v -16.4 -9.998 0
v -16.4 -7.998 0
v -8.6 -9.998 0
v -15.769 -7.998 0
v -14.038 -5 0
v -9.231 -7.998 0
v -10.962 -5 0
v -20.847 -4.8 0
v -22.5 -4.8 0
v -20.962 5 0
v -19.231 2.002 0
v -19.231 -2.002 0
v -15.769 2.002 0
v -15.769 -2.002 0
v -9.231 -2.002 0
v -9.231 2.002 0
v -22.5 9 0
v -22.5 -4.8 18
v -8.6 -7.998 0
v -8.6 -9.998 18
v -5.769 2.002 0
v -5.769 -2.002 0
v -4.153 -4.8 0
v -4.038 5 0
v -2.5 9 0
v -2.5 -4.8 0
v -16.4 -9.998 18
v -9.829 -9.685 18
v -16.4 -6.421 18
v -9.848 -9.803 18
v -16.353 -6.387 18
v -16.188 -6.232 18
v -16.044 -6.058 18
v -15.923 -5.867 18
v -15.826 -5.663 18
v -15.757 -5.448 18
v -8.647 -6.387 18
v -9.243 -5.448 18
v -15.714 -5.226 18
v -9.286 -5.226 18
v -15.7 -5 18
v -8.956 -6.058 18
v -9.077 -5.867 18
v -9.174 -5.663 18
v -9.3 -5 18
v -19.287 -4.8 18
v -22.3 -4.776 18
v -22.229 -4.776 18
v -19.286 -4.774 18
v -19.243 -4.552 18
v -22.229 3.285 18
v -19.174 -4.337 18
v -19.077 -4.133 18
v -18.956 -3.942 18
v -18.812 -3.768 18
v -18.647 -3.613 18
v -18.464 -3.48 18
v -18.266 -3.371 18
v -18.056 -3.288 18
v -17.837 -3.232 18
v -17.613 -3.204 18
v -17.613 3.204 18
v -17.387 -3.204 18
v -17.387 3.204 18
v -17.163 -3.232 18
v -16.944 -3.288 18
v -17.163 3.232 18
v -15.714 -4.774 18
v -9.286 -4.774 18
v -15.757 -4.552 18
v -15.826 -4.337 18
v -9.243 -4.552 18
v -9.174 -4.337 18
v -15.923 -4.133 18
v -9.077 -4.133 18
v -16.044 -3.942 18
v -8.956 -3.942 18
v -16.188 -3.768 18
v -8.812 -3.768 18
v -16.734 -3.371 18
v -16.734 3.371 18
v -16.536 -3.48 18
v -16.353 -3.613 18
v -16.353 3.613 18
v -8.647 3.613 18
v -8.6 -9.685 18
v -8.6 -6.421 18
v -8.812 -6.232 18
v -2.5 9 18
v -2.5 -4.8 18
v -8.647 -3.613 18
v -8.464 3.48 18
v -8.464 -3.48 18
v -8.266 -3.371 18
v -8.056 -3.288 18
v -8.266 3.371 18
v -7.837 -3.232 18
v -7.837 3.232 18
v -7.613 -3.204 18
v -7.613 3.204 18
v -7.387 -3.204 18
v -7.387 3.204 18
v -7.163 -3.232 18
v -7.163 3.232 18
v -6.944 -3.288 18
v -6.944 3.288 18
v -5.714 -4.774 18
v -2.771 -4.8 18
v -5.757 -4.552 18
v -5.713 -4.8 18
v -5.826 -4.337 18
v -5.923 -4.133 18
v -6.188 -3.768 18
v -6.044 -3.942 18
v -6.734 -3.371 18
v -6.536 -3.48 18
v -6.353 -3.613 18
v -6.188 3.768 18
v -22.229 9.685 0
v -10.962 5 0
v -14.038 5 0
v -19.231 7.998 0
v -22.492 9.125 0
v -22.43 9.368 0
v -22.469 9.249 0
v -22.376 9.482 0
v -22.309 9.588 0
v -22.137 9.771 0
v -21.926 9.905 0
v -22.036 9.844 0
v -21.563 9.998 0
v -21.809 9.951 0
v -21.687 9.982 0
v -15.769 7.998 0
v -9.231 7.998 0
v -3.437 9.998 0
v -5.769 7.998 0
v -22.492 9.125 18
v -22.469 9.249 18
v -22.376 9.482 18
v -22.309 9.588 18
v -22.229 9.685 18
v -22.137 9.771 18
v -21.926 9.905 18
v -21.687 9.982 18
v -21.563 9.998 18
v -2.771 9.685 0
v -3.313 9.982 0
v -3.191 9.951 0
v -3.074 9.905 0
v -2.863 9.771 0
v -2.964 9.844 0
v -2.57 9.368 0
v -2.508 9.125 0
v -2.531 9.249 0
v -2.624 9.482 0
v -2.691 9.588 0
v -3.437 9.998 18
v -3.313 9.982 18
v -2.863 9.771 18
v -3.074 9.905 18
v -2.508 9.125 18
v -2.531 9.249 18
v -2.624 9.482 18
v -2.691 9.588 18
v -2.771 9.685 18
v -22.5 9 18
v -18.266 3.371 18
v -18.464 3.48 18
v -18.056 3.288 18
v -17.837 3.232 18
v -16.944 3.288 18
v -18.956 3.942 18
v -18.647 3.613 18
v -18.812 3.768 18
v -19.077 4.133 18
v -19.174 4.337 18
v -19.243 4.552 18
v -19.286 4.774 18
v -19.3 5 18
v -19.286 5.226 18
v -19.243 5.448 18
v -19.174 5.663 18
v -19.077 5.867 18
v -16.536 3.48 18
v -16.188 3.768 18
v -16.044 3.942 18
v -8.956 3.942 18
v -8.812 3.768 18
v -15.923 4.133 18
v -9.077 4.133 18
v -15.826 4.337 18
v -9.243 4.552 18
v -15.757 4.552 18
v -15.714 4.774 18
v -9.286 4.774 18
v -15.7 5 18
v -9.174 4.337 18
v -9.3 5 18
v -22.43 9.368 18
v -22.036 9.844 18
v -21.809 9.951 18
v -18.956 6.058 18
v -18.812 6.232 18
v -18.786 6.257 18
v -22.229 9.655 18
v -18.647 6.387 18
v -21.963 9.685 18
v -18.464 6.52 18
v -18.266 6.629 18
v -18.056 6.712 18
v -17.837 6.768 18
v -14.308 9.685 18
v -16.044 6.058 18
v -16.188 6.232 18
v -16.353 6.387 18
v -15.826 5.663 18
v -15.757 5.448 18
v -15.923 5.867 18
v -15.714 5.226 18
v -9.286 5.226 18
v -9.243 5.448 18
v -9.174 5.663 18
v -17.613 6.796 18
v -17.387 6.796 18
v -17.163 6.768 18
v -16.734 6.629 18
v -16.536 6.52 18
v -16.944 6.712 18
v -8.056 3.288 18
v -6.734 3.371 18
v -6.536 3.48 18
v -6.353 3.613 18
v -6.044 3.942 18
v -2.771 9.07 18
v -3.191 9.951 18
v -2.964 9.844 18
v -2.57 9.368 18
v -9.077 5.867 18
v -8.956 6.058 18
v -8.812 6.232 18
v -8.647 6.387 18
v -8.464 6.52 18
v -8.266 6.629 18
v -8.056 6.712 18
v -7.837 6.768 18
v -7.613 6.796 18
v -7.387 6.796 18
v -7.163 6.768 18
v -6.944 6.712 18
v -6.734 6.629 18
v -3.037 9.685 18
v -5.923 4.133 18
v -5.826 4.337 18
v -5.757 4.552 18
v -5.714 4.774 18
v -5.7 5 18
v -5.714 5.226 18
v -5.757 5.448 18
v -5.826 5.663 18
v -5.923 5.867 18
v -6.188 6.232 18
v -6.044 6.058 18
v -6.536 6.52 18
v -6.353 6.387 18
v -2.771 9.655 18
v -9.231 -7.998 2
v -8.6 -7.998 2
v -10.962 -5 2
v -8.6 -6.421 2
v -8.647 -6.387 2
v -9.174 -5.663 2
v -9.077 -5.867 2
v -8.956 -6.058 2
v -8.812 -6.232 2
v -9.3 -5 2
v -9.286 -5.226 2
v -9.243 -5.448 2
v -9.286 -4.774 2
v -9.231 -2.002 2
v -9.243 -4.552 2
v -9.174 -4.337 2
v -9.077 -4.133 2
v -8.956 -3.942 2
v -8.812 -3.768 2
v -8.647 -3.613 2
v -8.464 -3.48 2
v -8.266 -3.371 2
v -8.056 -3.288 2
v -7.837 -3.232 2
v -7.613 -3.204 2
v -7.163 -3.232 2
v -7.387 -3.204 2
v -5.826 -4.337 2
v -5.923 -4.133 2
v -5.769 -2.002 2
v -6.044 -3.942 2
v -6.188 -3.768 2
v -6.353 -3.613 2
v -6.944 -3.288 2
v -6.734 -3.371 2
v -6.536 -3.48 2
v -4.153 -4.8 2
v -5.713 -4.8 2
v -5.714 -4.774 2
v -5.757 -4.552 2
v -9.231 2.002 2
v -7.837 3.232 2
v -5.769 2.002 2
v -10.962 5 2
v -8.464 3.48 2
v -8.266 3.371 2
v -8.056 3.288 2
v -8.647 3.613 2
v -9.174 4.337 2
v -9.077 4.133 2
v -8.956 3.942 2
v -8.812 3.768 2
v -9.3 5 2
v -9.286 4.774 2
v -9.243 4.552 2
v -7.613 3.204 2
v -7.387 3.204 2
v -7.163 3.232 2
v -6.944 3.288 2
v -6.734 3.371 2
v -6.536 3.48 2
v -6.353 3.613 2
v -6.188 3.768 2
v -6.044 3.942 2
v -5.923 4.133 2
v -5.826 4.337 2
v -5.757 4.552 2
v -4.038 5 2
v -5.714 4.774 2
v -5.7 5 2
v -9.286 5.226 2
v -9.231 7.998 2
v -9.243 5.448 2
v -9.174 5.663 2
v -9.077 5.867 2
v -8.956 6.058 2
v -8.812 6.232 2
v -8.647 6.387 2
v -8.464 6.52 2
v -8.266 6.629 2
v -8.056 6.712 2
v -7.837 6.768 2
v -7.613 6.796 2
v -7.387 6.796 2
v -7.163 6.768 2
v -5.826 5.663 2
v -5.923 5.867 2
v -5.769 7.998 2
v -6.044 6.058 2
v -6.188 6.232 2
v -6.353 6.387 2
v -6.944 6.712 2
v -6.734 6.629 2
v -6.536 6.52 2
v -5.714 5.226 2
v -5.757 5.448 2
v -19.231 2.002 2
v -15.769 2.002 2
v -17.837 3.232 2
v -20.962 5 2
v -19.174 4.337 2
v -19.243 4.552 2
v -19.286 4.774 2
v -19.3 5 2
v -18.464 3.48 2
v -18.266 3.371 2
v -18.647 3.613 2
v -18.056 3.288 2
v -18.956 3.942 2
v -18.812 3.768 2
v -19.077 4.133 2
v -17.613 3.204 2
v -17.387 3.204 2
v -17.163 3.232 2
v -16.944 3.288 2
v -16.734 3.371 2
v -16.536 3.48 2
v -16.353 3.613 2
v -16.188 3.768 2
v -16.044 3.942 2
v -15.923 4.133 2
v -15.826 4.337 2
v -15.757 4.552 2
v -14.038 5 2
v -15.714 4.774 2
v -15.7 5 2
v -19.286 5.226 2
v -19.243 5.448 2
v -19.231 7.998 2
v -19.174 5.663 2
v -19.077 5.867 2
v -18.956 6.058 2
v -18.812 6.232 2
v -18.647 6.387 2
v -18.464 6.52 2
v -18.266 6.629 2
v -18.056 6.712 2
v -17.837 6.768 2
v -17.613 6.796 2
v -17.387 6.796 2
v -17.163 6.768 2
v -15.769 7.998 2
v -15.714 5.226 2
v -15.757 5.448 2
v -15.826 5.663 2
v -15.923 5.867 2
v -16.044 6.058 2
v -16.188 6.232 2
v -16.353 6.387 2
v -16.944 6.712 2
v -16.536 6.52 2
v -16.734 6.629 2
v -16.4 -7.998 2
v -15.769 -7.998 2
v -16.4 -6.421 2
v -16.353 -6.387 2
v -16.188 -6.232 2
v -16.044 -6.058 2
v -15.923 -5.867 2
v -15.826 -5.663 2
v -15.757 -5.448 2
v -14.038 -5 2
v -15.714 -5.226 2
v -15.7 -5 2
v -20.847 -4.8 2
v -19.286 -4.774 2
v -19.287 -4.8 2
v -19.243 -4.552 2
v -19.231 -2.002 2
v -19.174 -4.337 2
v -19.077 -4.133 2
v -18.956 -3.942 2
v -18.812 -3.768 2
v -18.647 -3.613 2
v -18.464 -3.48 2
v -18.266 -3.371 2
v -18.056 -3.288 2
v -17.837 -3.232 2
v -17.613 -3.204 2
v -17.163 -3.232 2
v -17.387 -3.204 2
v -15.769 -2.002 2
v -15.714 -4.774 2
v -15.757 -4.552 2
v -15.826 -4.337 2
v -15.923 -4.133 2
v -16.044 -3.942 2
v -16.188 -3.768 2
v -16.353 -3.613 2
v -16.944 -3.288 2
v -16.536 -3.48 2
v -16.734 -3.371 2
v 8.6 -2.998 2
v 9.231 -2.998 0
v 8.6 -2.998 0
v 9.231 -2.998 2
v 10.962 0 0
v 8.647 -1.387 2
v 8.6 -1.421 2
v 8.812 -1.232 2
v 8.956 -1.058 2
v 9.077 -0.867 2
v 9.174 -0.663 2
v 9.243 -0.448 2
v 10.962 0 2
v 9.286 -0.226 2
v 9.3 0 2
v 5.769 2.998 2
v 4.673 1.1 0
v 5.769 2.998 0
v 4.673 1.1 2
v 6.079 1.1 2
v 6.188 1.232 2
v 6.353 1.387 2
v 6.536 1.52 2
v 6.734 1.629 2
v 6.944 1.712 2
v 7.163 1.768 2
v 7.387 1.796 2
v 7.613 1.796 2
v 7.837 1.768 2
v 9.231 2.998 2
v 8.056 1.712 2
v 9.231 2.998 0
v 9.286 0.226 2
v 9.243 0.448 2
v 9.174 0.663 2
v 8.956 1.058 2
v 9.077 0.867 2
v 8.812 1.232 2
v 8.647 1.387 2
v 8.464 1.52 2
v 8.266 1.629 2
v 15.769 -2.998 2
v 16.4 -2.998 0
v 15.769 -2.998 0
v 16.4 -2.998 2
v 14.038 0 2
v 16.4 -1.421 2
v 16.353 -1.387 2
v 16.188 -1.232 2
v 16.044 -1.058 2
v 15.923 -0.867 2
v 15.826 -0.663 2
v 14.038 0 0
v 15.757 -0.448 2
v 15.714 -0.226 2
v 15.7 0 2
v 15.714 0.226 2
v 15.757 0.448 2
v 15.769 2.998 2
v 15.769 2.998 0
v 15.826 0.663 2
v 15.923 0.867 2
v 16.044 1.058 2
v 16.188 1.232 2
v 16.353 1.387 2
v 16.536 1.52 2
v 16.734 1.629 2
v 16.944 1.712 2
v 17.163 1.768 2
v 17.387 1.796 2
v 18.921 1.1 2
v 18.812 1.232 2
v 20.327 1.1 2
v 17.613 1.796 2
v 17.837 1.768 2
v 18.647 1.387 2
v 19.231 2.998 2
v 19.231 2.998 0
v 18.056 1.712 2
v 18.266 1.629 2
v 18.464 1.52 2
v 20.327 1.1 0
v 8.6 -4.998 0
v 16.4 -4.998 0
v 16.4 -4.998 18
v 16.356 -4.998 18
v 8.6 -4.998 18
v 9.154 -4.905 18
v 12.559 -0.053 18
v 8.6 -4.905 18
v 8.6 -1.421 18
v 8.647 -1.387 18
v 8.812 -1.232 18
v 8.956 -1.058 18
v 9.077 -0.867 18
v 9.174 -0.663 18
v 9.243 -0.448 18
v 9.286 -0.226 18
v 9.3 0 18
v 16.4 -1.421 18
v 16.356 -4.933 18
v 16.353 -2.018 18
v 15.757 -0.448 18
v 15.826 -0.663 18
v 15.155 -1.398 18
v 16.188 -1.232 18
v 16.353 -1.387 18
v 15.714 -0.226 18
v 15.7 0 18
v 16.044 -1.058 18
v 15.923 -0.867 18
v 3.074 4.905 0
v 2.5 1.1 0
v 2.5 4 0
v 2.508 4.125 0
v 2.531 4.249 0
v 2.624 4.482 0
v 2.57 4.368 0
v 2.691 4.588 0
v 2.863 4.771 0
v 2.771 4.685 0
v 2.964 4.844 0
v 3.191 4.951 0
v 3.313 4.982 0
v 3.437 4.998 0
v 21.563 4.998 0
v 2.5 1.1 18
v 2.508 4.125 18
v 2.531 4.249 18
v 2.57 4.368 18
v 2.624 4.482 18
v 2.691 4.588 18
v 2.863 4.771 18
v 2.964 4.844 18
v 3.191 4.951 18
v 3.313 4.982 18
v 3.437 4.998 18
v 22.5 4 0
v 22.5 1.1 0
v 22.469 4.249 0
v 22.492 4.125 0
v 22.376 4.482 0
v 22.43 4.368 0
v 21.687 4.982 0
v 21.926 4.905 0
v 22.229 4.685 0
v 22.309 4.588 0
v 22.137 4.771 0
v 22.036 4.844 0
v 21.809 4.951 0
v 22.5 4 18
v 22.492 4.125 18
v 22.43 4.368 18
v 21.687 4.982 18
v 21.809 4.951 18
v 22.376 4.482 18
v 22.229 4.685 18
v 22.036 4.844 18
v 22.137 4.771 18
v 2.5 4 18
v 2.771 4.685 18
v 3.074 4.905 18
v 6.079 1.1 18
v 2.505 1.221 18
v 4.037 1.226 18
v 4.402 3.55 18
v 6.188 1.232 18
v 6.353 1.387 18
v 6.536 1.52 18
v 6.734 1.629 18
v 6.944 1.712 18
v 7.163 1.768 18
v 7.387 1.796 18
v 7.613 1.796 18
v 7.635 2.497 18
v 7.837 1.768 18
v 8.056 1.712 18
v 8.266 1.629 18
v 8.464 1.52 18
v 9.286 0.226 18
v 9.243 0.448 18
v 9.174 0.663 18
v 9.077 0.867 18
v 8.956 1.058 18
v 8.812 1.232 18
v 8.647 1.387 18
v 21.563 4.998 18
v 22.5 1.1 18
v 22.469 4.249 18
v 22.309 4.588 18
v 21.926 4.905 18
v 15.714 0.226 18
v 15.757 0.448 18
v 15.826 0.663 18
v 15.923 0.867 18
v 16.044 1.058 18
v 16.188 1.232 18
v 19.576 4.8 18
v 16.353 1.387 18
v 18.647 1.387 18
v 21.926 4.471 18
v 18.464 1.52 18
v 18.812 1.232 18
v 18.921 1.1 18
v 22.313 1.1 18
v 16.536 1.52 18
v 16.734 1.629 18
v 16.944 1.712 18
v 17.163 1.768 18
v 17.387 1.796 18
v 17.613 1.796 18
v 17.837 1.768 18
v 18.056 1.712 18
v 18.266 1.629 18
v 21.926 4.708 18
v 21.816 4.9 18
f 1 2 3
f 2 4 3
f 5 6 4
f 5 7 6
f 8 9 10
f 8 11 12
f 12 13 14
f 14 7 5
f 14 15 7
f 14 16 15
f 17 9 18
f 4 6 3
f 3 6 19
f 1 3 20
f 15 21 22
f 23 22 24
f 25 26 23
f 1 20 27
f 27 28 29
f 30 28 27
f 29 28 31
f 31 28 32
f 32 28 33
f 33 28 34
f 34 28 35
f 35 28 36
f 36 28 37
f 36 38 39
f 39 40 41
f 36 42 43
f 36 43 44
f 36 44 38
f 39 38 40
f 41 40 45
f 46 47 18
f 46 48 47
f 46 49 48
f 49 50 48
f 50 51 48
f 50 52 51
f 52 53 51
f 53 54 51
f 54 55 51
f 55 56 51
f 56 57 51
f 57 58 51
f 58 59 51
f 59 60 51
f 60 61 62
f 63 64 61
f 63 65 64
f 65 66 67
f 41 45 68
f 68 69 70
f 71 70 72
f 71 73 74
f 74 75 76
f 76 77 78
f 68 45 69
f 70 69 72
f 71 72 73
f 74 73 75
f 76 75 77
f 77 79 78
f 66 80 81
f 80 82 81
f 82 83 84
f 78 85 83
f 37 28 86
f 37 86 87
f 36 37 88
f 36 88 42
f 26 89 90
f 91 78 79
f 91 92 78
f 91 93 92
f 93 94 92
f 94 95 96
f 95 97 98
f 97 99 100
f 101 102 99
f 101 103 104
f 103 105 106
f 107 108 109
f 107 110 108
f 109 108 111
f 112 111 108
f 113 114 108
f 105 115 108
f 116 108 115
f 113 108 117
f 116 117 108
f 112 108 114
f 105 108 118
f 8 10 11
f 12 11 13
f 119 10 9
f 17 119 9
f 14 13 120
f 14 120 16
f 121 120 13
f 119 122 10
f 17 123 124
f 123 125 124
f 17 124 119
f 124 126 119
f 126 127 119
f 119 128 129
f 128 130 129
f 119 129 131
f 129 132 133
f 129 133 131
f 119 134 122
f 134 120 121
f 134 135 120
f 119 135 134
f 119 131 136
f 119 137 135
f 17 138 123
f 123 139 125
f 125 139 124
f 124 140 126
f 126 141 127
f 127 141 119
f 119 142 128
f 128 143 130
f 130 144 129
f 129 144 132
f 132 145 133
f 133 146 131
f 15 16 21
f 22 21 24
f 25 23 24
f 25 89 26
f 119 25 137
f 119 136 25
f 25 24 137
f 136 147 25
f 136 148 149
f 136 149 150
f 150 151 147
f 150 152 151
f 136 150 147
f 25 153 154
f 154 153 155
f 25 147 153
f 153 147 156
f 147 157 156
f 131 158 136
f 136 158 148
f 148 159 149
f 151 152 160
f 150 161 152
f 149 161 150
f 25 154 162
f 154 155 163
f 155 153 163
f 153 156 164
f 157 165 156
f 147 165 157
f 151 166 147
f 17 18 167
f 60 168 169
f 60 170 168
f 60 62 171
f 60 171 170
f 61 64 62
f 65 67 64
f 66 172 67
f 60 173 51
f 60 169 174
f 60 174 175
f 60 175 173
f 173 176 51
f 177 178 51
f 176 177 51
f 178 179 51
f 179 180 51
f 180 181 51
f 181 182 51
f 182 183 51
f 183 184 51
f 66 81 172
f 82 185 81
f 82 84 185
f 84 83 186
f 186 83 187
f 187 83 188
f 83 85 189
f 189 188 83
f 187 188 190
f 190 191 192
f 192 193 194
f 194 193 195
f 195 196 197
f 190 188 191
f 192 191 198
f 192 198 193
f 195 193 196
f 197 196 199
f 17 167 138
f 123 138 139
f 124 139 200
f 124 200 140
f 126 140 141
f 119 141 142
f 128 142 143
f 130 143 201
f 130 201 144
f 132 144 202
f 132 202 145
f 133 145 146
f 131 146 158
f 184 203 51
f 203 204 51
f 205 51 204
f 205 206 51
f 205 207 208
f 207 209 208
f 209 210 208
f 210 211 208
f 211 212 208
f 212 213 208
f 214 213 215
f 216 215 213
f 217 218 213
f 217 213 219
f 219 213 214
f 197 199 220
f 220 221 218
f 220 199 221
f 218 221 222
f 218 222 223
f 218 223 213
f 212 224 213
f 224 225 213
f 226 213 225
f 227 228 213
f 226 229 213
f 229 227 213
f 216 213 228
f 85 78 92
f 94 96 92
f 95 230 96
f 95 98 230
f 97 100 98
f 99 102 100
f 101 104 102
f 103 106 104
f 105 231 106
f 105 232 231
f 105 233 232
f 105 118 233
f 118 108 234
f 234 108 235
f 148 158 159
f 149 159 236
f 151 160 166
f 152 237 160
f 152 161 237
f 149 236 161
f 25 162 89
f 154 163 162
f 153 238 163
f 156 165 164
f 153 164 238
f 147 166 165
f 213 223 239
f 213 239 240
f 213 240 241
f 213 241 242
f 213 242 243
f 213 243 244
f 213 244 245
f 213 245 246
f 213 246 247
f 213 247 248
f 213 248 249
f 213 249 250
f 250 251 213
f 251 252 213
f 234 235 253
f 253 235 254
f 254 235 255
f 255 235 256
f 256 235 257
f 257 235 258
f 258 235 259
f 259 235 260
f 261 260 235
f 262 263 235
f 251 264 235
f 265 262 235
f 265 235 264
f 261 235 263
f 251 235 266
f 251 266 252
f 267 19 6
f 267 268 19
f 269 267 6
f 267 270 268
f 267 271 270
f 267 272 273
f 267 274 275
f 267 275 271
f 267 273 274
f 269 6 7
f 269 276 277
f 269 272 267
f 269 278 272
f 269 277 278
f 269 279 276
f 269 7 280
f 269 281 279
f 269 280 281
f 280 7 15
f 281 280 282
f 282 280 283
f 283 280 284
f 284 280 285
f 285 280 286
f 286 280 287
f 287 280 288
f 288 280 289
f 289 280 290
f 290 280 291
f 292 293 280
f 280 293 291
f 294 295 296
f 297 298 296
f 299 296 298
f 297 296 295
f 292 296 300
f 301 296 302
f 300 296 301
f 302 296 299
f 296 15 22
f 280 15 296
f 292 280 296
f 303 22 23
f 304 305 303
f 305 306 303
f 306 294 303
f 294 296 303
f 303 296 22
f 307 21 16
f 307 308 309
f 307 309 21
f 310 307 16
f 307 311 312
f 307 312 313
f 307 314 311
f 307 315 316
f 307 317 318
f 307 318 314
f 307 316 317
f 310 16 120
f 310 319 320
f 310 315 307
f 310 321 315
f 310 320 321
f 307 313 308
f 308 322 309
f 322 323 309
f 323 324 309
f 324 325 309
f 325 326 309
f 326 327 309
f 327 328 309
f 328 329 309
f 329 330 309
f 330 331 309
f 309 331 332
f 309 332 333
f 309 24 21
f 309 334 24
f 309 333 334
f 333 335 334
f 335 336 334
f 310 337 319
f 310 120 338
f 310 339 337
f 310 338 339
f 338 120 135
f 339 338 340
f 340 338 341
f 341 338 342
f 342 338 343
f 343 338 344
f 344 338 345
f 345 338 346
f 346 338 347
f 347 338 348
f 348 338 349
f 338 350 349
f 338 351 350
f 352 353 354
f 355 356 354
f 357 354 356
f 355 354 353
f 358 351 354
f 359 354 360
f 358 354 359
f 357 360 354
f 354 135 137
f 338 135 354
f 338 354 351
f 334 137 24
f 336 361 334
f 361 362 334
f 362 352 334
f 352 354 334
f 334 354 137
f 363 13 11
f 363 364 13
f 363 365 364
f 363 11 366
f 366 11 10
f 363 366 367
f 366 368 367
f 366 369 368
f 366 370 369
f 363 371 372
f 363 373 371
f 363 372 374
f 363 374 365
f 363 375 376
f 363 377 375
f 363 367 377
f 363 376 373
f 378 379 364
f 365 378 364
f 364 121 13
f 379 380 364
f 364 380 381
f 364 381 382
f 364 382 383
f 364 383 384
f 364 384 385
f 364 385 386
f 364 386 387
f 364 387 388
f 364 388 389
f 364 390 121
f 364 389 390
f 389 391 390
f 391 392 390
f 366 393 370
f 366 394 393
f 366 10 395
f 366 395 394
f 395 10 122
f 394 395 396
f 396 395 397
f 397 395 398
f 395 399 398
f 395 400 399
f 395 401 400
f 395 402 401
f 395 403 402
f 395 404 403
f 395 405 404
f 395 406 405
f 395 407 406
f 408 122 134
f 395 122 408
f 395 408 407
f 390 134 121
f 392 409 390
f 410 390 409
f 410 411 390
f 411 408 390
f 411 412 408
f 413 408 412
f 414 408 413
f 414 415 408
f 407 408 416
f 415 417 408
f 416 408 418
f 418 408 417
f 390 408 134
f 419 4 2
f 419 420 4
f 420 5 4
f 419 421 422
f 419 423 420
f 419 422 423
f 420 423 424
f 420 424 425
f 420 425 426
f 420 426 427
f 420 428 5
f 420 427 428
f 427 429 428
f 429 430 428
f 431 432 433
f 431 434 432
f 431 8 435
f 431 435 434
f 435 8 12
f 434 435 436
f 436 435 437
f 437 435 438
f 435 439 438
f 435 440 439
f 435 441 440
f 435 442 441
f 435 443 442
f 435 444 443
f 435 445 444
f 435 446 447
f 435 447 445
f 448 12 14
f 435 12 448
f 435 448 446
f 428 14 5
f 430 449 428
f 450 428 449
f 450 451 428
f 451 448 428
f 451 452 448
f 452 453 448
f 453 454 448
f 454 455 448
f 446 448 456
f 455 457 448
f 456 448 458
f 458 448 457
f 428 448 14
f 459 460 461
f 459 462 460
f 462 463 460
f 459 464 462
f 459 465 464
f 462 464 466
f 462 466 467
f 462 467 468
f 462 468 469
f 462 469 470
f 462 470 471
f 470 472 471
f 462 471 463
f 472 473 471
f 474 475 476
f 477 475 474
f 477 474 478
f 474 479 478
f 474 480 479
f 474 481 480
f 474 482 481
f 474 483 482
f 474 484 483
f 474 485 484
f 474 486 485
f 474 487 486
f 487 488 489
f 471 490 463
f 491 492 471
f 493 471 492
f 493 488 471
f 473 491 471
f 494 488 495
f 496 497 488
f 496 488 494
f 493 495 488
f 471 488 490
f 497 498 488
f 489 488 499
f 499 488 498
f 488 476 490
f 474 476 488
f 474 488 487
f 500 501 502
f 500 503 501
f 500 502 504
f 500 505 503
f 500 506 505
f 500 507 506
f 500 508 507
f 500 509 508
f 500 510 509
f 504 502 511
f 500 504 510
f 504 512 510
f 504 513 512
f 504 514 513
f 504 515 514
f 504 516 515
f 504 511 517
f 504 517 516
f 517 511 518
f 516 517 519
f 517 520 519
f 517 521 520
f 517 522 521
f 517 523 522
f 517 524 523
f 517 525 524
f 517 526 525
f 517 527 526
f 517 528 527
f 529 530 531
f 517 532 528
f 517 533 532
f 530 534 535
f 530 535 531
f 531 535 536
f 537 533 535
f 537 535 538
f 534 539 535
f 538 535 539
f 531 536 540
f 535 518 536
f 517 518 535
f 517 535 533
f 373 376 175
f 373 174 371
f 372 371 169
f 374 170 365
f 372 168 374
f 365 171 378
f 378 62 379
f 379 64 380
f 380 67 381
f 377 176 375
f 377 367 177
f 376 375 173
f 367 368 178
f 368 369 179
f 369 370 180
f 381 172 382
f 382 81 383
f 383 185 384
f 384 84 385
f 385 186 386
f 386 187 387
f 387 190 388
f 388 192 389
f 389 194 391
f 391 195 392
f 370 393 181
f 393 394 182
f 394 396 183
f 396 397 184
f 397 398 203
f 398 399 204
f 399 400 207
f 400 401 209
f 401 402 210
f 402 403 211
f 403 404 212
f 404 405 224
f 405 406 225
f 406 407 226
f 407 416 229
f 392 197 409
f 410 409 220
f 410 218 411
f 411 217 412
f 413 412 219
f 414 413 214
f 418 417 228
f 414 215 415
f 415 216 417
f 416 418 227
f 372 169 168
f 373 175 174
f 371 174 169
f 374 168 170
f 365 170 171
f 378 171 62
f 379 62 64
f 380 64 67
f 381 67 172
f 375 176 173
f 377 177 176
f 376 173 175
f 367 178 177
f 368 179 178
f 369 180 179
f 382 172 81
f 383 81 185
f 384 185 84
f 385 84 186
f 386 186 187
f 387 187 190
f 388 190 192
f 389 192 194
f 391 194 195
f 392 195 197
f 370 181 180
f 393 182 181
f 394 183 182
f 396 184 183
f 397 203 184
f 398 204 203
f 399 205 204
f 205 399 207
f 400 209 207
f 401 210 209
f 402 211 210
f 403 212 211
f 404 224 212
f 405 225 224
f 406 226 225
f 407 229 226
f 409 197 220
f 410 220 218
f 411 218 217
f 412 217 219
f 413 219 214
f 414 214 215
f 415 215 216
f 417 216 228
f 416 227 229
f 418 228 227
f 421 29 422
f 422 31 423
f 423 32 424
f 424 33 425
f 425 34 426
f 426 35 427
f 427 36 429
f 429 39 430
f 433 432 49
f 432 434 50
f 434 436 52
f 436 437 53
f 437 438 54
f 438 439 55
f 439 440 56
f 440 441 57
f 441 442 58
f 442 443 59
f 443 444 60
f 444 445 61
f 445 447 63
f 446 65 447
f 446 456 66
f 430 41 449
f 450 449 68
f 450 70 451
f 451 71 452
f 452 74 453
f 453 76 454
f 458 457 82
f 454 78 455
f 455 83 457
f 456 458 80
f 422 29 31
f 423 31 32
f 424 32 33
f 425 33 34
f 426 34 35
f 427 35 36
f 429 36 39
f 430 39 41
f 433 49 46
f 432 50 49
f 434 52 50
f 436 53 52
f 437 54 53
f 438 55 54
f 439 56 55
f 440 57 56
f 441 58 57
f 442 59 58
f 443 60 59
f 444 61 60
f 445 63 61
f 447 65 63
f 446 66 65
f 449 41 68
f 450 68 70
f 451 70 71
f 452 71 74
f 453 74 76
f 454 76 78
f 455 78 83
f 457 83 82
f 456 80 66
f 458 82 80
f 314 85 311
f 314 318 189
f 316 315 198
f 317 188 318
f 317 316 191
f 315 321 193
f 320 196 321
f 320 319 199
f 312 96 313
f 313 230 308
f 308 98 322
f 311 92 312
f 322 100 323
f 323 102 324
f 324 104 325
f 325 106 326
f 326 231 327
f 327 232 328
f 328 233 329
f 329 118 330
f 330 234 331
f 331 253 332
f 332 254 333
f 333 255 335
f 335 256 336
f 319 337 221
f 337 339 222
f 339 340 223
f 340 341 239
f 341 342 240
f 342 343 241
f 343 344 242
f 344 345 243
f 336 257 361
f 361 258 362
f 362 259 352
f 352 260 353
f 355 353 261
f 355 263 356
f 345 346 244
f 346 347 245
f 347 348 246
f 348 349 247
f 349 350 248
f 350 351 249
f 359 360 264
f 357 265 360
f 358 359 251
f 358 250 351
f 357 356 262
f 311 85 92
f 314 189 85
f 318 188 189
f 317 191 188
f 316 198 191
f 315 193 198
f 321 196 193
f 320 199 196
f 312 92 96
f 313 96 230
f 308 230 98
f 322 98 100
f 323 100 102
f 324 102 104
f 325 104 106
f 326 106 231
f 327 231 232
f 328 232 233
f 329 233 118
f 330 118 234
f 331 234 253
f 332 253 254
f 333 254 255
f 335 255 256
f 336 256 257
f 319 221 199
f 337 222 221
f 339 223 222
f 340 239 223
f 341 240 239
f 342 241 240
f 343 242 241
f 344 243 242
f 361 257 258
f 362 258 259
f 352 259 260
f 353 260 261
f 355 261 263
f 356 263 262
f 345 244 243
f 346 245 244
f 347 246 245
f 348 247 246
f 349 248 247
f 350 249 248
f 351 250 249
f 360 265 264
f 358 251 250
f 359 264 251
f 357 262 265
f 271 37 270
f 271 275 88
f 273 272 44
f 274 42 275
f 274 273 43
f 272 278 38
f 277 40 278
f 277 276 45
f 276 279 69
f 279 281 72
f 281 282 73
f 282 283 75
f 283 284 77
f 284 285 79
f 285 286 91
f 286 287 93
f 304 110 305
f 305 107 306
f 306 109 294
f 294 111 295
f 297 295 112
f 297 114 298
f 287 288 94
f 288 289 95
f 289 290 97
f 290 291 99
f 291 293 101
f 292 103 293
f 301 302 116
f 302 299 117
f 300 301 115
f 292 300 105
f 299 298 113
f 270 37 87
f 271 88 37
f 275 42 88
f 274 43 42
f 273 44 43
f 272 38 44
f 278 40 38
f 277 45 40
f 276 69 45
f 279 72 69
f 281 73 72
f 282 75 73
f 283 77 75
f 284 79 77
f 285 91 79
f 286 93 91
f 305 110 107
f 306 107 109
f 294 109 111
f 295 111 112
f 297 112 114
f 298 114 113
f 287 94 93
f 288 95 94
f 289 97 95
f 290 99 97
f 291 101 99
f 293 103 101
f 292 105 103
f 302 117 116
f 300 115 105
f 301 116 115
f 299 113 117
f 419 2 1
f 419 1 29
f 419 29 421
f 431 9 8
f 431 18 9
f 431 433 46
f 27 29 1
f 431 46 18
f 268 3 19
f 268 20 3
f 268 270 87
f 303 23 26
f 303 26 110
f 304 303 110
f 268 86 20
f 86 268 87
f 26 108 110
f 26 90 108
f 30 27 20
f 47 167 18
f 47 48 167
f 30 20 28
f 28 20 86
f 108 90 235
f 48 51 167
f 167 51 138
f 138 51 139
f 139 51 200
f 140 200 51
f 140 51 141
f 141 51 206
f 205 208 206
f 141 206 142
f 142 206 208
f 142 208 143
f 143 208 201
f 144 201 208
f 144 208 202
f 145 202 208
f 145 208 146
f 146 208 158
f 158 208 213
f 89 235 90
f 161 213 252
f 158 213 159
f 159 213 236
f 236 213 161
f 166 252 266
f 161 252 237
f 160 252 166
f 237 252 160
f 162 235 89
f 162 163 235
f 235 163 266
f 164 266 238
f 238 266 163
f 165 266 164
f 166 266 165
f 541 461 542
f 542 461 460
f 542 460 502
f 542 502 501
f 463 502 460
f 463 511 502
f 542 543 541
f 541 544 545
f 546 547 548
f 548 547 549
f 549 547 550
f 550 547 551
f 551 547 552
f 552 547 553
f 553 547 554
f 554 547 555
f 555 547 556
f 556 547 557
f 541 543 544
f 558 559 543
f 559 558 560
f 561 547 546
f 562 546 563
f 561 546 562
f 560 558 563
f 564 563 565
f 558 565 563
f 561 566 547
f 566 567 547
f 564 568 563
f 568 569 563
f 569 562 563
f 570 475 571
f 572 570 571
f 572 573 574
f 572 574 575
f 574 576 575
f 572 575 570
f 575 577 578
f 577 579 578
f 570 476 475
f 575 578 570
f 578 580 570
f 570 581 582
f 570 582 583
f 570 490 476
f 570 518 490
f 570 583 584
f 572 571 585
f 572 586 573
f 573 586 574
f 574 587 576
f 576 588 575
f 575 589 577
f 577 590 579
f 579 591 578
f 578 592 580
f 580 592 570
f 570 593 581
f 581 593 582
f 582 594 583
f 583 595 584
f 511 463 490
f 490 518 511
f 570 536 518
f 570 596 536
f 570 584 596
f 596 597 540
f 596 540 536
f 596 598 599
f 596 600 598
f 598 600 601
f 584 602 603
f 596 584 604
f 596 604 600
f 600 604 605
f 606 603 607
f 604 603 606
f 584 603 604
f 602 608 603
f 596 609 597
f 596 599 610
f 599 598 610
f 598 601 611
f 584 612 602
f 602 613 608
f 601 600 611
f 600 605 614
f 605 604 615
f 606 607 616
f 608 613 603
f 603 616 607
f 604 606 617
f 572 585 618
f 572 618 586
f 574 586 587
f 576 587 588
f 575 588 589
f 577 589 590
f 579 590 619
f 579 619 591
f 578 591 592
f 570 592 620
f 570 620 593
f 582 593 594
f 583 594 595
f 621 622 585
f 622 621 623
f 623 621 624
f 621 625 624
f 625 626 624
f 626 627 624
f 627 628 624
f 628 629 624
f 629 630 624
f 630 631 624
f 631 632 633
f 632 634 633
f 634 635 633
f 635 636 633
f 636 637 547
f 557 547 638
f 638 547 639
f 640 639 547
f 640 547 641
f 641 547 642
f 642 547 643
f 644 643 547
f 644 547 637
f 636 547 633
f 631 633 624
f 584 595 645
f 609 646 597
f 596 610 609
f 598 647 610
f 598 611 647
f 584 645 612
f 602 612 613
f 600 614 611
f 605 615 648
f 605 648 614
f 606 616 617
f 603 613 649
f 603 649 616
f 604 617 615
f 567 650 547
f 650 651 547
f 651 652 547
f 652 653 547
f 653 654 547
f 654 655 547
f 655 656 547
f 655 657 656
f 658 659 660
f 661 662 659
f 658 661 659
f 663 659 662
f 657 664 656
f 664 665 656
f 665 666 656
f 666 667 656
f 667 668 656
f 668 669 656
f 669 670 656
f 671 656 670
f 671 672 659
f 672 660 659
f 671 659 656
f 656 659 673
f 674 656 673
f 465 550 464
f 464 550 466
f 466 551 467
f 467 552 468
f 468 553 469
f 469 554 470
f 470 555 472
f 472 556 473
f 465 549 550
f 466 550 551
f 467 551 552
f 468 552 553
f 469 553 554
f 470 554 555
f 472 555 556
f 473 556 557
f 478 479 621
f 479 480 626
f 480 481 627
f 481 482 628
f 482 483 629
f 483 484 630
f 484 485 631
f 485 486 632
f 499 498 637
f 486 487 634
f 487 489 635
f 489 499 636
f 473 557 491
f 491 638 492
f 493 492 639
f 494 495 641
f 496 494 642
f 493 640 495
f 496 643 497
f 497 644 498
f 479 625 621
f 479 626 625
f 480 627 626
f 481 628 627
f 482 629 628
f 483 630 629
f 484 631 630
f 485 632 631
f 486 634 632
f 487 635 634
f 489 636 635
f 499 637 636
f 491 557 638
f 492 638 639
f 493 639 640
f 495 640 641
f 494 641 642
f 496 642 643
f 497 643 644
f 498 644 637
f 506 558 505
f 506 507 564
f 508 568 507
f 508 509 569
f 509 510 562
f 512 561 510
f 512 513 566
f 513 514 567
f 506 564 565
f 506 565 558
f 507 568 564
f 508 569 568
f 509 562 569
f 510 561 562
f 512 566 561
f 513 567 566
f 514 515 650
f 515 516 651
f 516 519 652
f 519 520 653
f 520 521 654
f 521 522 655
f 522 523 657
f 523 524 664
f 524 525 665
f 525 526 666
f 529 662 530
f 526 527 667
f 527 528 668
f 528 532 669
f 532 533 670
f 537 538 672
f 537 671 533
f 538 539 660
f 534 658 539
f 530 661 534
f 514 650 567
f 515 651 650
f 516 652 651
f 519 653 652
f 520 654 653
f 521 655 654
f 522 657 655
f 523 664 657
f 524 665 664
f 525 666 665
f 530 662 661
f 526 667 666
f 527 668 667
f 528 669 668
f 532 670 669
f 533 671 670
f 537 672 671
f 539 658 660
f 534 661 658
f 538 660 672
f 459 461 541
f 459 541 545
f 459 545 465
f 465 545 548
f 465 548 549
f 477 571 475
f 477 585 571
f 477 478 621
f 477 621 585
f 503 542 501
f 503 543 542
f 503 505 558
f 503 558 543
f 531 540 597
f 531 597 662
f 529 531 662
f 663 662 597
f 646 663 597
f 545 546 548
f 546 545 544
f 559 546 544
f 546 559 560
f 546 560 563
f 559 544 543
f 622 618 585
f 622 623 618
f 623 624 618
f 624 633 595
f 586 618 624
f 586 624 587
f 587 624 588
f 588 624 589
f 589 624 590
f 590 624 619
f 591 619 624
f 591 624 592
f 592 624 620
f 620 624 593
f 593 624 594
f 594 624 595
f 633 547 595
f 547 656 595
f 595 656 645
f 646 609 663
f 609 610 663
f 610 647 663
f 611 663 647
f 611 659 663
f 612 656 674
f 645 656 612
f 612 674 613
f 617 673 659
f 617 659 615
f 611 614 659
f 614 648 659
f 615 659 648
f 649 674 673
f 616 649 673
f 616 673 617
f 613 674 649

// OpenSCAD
$fn = 50;

difference() {
	union() {
		translate(v = [-12.5, 0, 0]) {
			rotate(a = [0, 0, 0]) {
				difference() {
					union() {
						hull() {
							translate(v = [-9.0, 9.0, 0]) {
								cylinder(h = 18.0, r = 1.0);
							}
							translate(v = [9.0, 9.0, 0]) {
								cylinder(h = 18.0, r = 1.0);
							}
							translate(v = [-9.0, -9.0, 0]) {
								cylinder(h = 18.0, r = 1.0);
							}
							translate(v = [9.0, -9.0, 0]) {
								cylinder(h = 18.0, r = 1.0);
							}
						}
					}
					union() {
						translate(v = [-5.0, 5.0, 2.0]) {
							rotate(a = [180.0, 0, 0]) {
								difference() {
									union() {
										translate(v = [0, 0, 0]) {
											rotate(a = [0, 0, 0]) {
												difference() {
													union() {
														linear_extrude(height = 4.0) {
															polygon(points = [[3.4619999999999997, 0.0], [1.7310000000000003, 2.9981799479017264], [-1.7309999999999992, 2.9981799479017264], [-3.4619999999999997, 4.2397272186481365e-16], [-1.7310000000000014, -2.998179947901726], [1.7309999999999977, -2.9981799479017277]]);
														}
													}
													union();
												}
											}
										}
									}
									union();
								}
							}
						}
						translate(v = [-5.0, -5.0, 2.0]) {
							rotate(a = [180.0, 0, 0]) {
								difference() {
									union() {
										translate(v = [0, 0, 0]) {
											rotate(a = [0, 0, 0]) {
												difference() {
													union() {
														linear_extrude(height = 4.0) {
															polygon(points = [[3.4619999999999997, 0.0], [1.7310000000000003, 2.9981799479017264], [-1.7309999999999992, 2.9981799479017264], [-3.4619999999999997, 4.2397272186481365e-16], [-1.7310000000000014, -2.998179947901726], [1.7309999999999977, -2.9981799479017277]]);
														}
													}
													union();
												}
											}
										}
									}
									union();
								}
							}
						}
						translate(v = [5.0, 5.0, 2.0]) {
							rotate(a = [180.0, 0, 0]) {
								difference() {
									union() {
										translate(v = [0, 0, 0]) {
											rotate(a = [0, 0, 0]) {
												difference() {
													union() {
														linear_extrude(height = 4.0) {
															polygon(points = [[3.4619999999999997, 0.0], [1.7310000000000003, 2.9981799479017264], [-1.7309999999999992, 2.9981799479017264], [-3.4619999999999997, 4.2397272186481365e-16], [-1.7310000000000014, -2.998179947901726], [1.7309999999999977, -2.9981799479017277]]);
														}
													}
													union();
												}
											}
										}
									}
									union();
								}
							}
						}
						translate(v = [5.0, -5.0, 2.0]) {
							rotate(a = [180.0, 0, 0]) {
								difference() {
									union() {
										translate(v = [0, 0, 0]) {
											rotate(a = [0, 0, 0]) {
												difference() {
													union() {
														linear_extrude(height = 4.0) {
															polygon(points = [[3.4619999999999997, 0.0], [1.7310000000000003, 2.9981799479017264], [-1.7309999999999992, 2.9981799479017264], [-3.4619999999999997, 4.2397272186481365e-16], [-1.7310000000000014, -2.998179947901726], [1.7309999999999977, -2.9981799479017277]]);
														}
													}
													union();
												}
											}
										}
									}
									union();
								}
							}
						}
						translate(v = [-5.0, 5.0, -0.5]) {
							cylinder(h = 20.0, r = 1.8);
						}
						translate(v = [-5.0, -5.0, -0.5]) {
							cylinder(h = 20.0, r = 1.8);
						}
						translate(v = [5.0, 5.0, -0.5]) {
							cylinder(h = 20.0, r = 1.8);
						}
						translate(v = [5.0, -5.0, -0.5]) {
							cylinder(h = 20.0, r = 1.8);
						}
						translate(v = [-103.90000000049999, -104.8, -0.1]) {
							cube(size = [100, 100, 19.0]);
						}
						translate(v = [3.900000000499989, -104.8, -0.1]) {
							cube(size = [100, 100, 19.0]);
						}
						translate(v = [-50, -50, 18.0]) {
							cube(size = [100, 100, 2]);
						}
					}
				}
			}
		}
		translate(v = [12.5, 0, 0]) {
			rotate(a = [0, 0, 0]) {
				difference() {
					union() {
						hull() {
							translate(v = [-9.0, 4.0, 0]) {
								cylinder(h = 18.0, r = 1.0);
							}
							translate(v = [9.0, 4.0, 0]) {
								cylinder(h = 18.0, r = 1.0);
							}
							translate(v = [-9.0, -4.0, 0]) {
								cylinder(h = 18.0, r = 1.0);
							}
							translate(v = [9.0, -4.0, 0]) {
								cylinder(h = 18.0, r = 1.0);
							}
						}
					}
					union() {
						translate(v = [-5.0, 0.0, 2.0]) {
							rotate(a = [180.0, 0, 0]) {
								difference() {
									union() {
										translate(v = [0, 0, 0]) {
											rotate(a = [0, 0, 0]) {
												difference() {
													union() {
														linear_extrude(height = 4.0) {
															polygon(points = [[3.4619999999999997, 0.0], [1.7310000000000003, 2.9981799479017264], [-1.7309999999999992, 2.9981799479017264], [-3.4619999999999997, 4.2397272186481365e-16], [-1.7310000000000014, -2.998179947901726], [1.7309999999999977, -2.9981799479017277]]);
														}
													}
													union();
												}
											}
										}
									}
									union();
								}
							}
						}
						translate(v = [5.0, 0.0, 2.0]) {
							rotate(a = [180.0, 0, 0]) {
								difference() {
									union() {
										translate(v = [0, 0, 0]) {
											rotate(a = [0, 0, 0]) {
												difference() {
													union() {
														linear_extrude(height = 4.0) {
															polygon(points = [[3.4619999999999997, 0.0], [1.7310000000000003, 2.9981799479017264], [-1.7309999999999992, 2.9981799479017264], [-3.4619999999999997, 4.2397272186481365e-16], [-1.7310000000000014, -2.998179947901726], [1.7309999999999977, -2.9981799479017277]]);
														}
													}
													union();
												}
											}
										}
									}
									union();
								}
							}
						}
						translate(v = [-5.0, 0.0, -0.5]) {
							cylinder(h = 20.0, r = 1.8);
						}
						translate(v = [5.0, 0.0, -0.5]) {
							cylinder(h = 20.0, r = 1.8);
						}
						translate(v = [-103.90000000049999, -99.8, -0.1]) {
							cube(size = [100, 100, 19.0]);
						}
						translate(v = [-104.8, -98.90000000049999, -0.1]) {
							cube(size = [100, 100, 19.0]);
						}
						translate(v = [3.900000000499989, -99.8, -0.1]) {
							cube(size = [100, 100, 19.0]);
						}
						translate(v = [4.8, -98.90000000049999, -0.1]) {
							cube(size = [100, 100, 19.0]);
						}
						translate(v = [-50, -50, 18.0]) {
							cube(size = [100, 100, 2]);
						}
					}
				}
			}
		}
	}
	union();
}
